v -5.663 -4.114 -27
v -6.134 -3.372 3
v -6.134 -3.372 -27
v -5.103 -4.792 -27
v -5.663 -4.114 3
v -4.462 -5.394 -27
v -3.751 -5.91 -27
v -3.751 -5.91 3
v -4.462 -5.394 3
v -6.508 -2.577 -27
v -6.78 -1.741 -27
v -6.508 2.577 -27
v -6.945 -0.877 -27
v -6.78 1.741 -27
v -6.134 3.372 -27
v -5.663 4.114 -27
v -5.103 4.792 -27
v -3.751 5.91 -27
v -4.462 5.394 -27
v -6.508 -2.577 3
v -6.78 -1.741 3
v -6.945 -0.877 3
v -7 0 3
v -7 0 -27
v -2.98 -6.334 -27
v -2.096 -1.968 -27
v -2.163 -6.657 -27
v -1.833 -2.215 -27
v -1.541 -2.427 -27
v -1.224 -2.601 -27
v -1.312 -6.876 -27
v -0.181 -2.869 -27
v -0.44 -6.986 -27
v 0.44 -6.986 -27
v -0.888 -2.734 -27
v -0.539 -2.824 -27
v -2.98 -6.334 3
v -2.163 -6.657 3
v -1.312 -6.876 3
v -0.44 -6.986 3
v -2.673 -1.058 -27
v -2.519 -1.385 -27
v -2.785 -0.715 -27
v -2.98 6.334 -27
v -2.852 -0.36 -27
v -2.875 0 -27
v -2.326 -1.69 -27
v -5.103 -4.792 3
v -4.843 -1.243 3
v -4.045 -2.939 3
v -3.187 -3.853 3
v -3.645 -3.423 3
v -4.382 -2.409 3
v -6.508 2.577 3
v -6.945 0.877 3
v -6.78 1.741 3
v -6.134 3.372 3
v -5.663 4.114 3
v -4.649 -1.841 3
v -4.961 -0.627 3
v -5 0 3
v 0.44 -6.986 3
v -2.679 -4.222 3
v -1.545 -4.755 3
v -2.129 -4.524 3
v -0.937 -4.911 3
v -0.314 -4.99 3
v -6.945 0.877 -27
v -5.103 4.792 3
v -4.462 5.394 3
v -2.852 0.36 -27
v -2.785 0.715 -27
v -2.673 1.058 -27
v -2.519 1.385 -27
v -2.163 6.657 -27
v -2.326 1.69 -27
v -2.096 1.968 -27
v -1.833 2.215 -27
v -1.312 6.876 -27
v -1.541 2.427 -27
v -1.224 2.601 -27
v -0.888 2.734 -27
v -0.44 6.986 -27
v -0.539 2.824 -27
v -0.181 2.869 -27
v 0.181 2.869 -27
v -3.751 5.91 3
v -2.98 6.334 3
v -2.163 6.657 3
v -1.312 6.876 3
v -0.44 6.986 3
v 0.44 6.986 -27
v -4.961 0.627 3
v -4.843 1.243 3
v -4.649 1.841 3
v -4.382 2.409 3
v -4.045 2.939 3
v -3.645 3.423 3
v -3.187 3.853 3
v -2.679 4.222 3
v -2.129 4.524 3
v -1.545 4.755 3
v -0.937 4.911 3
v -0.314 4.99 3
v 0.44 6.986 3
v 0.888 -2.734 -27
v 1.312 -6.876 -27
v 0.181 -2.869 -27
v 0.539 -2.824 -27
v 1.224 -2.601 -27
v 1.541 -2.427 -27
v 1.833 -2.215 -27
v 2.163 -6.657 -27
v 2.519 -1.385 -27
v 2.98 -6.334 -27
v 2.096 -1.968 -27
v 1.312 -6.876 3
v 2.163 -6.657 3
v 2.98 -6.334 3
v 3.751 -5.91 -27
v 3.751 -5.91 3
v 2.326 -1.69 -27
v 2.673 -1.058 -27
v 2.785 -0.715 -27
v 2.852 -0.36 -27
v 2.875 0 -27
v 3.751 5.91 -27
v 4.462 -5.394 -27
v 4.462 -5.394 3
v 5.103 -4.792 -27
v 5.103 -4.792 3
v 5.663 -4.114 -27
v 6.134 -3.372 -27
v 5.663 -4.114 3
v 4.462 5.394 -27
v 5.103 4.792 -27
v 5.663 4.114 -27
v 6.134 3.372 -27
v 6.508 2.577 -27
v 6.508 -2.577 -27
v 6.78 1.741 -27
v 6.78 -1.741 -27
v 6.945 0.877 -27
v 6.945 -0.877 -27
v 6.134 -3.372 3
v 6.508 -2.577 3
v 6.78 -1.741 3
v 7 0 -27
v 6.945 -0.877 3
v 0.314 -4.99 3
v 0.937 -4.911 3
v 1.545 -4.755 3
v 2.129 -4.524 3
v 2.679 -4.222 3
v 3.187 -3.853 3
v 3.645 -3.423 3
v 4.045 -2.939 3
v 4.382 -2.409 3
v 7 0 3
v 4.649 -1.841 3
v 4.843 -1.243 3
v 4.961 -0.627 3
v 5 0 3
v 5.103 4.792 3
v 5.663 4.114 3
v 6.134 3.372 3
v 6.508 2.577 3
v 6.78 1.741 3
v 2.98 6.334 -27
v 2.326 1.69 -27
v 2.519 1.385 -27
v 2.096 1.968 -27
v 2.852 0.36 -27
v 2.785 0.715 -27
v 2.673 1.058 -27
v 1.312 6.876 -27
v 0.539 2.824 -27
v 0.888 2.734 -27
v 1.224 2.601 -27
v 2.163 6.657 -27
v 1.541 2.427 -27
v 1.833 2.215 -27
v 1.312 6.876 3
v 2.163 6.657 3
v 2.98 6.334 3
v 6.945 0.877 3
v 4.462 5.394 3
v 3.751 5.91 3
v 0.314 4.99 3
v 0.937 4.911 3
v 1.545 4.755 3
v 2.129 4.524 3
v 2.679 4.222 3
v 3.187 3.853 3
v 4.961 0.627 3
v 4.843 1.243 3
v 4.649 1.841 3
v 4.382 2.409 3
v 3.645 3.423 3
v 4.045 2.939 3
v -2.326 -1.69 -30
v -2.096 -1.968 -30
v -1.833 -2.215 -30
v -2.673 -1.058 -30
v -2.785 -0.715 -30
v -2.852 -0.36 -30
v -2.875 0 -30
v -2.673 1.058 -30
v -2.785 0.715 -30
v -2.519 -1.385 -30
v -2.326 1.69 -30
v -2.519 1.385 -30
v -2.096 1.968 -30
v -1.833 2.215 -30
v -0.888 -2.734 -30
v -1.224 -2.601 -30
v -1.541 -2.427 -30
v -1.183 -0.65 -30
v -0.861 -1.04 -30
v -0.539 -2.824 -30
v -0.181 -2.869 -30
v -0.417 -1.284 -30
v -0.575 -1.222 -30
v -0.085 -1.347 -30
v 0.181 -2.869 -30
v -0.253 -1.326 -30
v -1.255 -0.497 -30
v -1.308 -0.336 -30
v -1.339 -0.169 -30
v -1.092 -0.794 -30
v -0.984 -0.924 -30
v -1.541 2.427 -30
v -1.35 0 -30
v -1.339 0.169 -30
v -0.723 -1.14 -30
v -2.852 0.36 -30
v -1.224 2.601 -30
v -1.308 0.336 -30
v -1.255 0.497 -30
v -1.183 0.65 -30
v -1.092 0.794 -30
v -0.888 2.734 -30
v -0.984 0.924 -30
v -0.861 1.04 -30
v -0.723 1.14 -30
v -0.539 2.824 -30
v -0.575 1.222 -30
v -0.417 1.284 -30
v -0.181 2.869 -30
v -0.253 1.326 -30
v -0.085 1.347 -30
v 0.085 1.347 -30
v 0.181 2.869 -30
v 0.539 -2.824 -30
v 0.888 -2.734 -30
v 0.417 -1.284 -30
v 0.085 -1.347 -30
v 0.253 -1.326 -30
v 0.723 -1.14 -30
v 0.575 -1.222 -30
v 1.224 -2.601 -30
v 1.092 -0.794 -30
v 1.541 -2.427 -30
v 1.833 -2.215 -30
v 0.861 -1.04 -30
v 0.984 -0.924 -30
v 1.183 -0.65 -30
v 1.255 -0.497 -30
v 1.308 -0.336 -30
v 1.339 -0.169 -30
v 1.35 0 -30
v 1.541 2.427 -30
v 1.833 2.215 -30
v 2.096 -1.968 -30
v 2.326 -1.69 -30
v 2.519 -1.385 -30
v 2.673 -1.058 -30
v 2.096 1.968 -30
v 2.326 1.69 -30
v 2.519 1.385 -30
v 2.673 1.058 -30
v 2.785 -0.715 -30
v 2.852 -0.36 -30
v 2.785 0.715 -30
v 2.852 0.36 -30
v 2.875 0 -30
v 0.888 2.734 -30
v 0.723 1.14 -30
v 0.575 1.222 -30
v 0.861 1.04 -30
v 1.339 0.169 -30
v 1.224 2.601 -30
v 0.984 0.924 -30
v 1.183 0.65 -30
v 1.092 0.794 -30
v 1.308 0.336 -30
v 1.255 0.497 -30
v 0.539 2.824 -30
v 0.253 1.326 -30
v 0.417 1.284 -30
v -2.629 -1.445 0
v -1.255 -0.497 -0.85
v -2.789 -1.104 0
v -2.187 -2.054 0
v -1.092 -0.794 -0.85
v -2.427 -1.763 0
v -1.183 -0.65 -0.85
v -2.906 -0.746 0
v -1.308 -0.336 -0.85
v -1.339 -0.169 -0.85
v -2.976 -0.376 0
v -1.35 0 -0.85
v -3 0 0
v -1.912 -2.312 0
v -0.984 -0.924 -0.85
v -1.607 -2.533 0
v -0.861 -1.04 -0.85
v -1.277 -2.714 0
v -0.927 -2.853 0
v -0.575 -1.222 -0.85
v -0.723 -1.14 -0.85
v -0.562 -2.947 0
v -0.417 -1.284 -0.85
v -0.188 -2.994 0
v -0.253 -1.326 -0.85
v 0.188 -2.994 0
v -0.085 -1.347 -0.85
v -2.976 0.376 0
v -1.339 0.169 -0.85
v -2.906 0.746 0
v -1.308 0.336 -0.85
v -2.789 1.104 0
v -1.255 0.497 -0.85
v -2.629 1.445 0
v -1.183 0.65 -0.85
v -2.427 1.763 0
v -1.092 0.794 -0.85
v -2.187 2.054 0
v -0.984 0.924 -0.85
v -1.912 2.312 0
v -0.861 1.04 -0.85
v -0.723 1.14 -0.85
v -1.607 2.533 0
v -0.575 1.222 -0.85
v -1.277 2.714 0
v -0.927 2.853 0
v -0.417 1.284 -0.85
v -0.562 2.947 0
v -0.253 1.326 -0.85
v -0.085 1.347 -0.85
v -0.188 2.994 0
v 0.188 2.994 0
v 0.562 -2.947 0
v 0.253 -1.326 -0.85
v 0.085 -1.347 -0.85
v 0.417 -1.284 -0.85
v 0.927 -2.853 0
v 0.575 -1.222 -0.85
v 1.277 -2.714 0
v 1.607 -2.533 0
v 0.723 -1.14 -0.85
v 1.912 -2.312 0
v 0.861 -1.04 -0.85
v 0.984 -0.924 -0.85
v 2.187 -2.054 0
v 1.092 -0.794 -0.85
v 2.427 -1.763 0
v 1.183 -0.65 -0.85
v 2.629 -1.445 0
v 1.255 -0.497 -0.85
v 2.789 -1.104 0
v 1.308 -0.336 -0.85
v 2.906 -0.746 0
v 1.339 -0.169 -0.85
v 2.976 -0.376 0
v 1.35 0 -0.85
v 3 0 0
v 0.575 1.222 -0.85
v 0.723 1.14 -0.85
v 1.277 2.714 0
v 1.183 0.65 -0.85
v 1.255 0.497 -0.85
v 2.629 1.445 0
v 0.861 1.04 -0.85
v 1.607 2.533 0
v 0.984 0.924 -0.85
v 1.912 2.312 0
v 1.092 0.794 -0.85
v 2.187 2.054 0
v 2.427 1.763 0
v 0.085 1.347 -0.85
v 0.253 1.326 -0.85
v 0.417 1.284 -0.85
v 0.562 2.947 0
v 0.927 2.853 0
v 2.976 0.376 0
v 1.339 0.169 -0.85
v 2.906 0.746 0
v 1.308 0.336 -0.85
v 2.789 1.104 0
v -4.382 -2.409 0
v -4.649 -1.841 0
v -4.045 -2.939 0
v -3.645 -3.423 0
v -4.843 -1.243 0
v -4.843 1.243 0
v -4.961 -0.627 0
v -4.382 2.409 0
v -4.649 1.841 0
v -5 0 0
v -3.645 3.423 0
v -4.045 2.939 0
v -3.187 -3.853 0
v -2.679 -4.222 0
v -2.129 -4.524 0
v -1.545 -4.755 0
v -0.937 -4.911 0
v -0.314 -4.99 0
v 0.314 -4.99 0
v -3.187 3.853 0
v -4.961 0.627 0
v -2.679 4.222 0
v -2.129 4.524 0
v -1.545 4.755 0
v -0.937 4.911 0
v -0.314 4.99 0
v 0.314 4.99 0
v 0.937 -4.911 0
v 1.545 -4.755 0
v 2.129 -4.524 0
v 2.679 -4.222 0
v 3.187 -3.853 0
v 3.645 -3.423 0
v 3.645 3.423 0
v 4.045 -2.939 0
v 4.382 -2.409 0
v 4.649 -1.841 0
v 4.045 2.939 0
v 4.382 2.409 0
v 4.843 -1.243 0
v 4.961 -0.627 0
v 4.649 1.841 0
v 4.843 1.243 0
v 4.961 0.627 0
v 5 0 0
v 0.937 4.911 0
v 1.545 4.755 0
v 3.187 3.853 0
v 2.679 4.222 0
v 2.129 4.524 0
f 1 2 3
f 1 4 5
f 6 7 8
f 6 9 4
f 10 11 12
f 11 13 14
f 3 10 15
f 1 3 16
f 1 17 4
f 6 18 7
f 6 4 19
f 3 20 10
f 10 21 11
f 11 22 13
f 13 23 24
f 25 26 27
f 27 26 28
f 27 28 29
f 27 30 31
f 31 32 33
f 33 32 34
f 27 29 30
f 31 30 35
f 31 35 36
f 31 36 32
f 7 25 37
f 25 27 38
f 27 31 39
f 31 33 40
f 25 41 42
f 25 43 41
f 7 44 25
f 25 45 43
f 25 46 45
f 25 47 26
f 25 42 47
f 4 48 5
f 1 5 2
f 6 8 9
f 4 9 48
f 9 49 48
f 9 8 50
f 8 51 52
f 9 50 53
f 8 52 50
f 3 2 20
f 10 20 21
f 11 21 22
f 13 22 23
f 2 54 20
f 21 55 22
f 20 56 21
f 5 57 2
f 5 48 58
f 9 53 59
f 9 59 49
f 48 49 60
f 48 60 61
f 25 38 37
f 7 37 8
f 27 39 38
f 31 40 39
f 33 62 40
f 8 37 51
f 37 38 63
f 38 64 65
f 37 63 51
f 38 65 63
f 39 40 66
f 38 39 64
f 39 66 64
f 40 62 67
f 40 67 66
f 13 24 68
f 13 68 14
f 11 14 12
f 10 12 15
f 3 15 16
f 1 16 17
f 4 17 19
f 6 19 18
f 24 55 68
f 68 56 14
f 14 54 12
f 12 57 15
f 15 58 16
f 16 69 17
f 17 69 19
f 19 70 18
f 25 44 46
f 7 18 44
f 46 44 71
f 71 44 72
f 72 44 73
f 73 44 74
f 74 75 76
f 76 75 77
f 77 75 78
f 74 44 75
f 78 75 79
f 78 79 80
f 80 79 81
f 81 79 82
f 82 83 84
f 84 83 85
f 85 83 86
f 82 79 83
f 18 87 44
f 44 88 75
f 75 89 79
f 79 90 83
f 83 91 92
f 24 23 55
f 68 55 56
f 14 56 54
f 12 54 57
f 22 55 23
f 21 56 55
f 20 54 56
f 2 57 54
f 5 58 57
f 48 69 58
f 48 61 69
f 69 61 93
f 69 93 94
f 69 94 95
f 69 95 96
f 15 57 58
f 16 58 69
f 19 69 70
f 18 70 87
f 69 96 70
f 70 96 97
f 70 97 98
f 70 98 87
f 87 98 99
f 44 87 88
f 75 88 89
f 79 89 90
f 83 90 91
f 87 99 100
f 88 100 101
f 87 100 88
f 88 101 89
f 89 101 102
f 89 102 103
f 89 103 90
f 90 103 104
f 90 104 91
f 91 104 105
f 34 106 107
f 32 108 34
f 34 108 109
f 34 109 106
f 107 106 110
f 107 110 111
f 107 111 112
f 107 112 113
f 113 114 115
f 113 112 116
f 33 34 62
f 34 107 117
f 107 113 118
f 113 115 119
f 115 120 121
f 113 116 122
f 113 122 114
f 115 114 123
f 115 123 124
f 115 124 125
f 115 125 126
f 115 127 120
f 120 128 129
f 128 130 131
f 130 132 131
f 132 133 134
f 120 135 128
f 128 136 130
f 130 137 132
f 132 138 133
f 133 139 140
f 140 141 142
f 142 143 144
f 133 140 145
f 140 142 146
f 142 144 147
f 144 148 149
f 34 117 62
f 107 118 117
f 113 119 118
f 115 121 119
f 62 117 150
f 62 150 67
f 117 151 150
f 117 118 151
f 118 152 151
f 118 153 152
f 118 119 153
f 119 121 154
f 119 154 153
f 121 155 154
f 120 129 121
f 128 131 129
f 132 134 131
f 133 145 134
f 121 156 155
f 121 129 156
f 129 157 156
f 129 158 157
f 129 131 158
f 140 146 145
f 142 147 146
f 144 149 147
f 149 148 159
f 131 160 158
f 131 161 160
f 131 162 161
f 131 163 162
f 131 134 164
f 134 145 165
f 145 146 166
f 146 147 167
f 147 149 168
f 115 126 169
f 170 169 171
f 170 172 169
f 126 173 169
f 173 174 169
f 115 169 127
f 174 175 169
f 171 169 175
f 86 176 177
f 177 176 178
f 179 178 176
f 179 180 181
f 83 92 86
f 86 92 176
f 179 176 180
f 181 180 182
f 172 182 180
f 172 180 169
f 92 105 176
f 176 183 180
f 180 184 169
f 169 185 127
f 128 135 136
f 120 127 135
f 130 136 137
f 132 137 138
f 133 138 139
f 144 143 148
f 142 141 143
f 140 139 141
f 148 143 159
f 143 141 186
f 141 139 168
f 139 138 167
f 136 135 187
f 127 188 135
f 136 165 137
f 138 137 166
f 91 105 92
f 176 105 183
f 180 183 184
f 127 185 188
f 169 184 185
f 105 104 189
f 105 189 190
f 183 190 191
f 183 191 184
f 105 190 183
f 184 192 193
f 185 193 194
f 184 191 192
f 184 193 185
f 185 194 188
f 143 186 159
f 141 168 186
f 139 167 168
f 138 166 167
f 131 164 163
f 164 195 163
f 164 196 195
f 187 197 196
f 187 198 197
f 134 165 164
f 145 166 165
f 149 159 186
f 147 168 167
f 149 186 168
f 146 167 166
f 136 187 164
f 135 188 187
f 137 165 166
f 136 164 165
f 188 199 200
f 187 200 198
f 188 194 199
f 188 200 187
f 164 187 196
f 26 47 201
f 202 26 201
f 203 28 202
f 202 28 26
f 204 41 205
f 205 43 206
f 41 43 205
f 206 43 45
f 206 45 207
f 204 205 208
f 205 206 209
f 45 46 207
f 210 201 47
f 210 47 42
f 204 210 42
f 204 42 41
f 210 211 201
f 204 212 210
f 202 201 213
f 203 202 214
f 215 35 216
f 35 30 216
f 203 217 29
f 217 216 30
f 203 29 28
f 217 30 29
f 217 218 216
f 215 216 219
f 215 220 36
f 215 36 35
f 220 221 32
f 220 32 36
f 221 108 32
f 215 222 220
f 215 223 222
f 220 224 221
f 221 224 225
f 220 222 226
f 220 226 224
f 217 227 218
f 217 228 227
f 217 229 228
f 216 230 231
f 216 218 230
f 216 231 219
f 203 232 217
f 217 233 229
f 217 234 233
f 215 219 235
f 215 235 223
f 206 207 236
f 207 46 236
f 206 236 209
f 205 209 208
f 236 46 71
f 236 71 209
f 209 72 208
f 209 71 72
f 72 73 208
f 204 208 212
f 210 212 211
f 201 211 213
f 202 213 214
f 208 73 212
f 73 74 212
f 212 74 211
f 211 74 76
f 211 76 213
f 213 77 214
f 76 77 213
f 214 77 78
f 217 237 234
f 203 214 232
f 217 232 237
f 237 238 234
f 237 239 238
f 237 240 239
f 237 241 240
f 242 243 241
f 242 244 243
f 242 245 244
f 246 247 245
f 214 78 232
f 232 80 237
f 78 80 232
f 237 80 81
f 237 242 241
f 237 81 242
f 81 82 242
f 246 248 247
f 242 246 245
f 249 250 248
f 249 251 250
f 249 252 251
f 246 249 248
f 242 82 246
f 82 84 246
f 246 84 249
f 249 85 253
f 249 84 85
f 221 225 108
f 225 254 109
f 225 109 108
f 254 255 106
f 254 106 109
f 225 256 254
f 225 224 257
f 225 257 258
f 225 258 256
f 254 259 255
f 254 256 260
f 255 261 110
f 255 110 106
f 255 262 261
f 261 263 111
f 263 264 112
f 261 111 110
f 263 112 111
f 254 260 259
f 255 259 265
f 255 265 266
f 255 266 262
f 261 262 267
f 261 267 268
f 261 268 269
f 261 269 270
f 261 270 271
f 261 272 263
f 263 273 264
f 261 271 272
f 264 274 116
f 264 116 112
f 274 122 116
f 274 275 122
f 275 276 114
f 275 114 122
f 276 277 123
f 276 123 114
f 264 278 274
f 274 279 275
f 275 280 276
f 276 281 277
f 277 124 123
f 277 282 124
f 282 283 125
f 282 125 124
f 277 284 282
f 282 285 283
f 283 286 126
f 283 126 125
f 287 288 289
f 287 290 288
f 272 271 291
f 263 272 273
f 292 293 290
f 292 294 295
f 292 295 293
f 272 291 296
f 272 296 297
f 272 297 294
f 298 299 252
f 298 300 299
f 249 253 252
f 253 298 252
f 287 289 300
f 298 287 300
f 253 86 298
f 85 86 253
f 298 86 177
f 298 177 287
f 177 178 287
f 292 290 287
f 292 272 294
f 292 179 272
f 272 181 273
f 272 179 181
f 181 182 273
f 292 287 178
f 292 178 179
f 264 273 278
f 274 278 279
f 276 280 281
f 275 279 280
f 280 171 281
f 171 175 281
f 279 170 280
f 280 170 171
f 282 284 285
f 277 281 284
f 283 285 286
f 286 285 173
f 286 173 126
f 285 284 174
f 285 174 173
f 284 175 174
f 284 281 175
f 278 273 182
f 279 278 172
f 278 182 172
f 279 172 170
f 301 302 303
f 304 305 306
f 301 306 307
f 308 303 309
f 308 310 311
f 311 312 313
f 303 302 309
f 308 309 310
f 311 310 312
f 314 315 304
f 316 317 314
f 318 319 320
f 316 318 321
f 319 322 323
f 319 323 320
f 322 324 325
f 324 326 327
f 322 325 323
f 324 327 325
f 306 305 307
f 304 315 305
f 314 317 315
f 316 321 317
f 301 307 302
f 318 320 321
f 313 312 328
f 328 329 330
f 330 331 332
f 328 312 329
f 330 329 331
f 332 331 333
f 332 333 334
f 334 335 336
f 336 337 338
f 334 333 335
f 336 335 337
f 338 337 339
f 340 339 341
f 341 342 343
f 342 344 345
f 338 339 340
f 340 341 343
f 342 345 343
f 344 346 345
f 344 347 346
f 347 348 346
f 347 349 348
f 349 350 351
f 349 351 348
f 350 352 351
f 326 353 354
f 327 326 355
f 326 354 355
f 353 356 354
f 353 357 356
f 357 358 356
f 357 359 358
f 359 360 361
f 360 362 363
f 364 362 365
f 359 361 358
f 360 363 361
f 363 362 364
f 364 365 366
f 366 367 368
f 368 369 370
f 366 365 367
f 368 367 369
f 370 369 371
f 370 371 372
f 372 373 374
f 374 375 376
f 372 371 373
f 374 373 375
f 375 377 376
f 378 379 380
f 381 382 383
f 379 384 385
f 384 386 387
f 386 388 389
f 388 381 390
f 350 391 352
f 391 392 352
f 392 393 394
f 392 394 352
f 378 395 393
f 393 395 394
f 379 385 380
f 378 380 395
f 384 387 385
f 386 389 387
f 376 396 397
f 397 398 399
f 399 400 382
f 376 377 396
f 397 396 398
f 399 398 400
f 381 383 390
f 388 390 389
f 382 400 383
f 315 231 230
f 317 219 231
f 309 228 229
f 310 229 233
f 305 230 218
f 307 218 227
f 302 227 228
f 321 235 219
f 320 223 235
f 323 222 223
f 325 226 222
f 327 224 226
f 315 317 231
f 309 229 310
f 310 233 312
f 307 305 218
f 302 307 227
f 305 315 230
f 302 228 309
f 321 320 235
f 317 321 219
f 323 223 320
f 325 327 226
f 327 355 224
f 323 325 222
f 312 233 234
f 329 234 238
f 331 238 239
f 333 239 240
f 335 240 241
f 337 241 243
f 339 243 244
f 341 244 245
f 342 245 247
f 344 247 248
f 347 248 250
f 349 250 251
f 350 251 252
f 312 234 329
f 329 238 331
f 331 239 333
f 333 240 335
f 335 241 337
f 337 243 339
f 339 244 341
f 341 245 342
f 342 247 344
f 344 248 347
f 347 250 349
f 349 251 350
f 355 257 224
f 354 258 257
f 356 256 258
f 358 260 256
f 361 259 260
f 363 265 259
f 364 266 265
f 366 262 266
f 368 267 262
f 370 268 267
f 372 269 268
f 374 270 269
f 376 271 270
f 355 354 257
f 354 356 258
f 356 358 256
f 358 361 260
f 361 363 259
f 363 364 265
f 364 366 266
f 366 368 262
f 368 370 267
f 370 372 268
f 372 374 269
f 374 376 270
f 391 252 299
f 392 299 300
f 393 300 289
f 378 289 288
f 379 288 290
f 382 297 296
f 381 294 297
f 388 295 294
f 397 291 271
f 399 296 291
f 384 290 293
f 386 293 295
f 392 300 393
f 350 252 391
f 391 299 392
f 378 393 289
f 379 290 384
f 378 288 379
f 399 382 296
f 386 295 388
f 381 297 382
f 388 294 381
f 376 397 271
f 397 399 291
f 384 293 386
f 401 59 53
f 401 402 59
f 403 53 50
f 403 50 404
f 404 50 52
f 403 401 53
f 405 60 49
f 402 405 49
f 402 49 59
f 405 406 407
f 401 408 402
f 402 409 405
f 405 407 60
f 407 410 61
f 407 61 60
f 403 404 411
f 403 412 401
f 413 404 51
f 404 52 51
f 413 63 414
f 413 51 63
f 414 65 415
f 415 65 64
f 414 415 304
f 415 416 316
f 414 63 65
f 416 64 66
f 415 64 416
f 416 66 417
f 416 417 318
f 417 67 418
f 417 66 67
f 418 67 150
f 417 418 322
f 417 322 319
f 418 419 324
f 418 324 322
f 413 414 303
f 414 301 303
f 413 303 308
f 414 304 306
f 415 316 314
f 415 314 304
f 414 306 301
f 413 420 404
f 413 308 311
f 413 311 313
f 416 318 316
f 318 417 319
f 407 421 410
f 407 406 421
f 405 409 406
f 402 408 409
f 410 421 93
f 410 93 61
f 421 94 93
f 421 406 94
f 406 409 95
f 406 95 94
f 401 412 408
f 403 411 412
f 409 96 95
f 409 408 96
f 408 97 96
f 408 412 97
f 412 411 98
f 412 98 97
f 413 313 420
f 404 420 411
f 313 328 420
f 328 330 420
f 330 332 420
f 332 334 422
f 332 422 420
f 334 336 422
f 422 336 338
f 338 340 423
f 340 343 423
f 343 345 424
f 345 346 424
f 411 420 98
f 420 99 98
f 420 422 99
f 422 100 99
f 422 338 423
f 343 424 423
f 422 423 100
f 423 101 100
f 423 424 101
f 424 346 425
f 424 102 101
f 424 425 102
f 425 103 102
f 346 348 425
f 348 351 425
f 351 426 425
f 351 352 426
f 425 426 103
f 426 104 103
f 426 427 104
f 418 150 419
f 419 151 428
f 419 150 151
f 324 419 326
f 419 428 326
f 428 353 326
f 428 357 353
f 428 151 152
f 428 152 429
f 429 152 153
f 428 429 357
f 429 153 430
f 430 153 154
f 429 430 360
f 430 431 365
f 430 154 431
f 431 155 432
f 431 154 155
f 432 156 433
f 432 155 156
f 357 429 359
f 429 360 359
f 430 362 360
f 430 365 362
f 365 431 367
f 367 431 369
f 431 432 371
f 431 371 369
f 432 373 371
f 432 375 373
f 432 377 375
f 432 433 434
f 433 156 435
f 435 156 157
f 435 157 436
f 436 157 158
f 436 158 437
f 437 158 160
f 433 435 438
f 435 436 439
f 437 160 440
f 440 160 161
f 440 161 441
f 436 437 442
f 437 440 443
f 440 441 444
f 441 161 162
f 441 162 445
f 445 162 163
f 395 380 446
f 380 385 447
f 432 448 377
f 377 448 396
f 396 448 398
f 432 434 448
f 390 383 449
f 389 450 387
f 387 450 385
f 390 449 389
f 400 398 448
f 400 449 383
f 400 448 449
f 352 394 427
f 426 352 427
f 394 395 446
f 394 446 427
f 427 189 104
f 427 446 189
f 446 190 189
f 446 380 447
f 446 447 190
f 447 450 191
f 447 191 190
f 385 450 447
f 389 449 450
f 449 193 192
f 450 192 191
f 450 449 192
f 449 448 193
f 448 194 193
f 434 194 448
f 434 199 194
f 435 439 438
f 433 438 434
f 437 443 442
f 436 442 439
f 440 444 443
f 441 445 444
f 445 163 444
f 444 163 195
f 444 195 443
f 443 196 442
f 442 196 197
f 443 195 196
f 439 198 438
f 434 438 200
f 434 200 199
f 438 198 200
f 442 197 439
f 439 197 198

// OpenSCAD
$fn = 50;

difference() {
	union() {
		translate(v = [0, 0, -27.0]) {
			cylinder(h = 30, r = 7.0);
		}
		#translate(v = [0, 0, -30.0]) {
			cylinder(h = 30, r = 2.875);
		}
	}
	union() {
		translate(v = [0, 0, 0]) {
			rotate(a = [0, 0, 0]) {
				difference() {
					union() {
						translate(v = [0, 0, -30.0]) {
							cylinder(h = 30, r = 1.0);
						}
						translate(v = [0, 0, -0.85]) {
							cylinder(h = 0.85, r1 = 1.35, r2 = 3.0);
						}
						translate(v = [0, 0, -30.0]) {
							cylinder(h = 30, r = 1.35);
						}
						translate(v = [0, 0, -30.0]) {
							cylinder(h = 30, r = 1.0);
						}
					}
					union();
				}
			}
		}
		#cylinder(h = 3, r = 5.0);
	}
}
